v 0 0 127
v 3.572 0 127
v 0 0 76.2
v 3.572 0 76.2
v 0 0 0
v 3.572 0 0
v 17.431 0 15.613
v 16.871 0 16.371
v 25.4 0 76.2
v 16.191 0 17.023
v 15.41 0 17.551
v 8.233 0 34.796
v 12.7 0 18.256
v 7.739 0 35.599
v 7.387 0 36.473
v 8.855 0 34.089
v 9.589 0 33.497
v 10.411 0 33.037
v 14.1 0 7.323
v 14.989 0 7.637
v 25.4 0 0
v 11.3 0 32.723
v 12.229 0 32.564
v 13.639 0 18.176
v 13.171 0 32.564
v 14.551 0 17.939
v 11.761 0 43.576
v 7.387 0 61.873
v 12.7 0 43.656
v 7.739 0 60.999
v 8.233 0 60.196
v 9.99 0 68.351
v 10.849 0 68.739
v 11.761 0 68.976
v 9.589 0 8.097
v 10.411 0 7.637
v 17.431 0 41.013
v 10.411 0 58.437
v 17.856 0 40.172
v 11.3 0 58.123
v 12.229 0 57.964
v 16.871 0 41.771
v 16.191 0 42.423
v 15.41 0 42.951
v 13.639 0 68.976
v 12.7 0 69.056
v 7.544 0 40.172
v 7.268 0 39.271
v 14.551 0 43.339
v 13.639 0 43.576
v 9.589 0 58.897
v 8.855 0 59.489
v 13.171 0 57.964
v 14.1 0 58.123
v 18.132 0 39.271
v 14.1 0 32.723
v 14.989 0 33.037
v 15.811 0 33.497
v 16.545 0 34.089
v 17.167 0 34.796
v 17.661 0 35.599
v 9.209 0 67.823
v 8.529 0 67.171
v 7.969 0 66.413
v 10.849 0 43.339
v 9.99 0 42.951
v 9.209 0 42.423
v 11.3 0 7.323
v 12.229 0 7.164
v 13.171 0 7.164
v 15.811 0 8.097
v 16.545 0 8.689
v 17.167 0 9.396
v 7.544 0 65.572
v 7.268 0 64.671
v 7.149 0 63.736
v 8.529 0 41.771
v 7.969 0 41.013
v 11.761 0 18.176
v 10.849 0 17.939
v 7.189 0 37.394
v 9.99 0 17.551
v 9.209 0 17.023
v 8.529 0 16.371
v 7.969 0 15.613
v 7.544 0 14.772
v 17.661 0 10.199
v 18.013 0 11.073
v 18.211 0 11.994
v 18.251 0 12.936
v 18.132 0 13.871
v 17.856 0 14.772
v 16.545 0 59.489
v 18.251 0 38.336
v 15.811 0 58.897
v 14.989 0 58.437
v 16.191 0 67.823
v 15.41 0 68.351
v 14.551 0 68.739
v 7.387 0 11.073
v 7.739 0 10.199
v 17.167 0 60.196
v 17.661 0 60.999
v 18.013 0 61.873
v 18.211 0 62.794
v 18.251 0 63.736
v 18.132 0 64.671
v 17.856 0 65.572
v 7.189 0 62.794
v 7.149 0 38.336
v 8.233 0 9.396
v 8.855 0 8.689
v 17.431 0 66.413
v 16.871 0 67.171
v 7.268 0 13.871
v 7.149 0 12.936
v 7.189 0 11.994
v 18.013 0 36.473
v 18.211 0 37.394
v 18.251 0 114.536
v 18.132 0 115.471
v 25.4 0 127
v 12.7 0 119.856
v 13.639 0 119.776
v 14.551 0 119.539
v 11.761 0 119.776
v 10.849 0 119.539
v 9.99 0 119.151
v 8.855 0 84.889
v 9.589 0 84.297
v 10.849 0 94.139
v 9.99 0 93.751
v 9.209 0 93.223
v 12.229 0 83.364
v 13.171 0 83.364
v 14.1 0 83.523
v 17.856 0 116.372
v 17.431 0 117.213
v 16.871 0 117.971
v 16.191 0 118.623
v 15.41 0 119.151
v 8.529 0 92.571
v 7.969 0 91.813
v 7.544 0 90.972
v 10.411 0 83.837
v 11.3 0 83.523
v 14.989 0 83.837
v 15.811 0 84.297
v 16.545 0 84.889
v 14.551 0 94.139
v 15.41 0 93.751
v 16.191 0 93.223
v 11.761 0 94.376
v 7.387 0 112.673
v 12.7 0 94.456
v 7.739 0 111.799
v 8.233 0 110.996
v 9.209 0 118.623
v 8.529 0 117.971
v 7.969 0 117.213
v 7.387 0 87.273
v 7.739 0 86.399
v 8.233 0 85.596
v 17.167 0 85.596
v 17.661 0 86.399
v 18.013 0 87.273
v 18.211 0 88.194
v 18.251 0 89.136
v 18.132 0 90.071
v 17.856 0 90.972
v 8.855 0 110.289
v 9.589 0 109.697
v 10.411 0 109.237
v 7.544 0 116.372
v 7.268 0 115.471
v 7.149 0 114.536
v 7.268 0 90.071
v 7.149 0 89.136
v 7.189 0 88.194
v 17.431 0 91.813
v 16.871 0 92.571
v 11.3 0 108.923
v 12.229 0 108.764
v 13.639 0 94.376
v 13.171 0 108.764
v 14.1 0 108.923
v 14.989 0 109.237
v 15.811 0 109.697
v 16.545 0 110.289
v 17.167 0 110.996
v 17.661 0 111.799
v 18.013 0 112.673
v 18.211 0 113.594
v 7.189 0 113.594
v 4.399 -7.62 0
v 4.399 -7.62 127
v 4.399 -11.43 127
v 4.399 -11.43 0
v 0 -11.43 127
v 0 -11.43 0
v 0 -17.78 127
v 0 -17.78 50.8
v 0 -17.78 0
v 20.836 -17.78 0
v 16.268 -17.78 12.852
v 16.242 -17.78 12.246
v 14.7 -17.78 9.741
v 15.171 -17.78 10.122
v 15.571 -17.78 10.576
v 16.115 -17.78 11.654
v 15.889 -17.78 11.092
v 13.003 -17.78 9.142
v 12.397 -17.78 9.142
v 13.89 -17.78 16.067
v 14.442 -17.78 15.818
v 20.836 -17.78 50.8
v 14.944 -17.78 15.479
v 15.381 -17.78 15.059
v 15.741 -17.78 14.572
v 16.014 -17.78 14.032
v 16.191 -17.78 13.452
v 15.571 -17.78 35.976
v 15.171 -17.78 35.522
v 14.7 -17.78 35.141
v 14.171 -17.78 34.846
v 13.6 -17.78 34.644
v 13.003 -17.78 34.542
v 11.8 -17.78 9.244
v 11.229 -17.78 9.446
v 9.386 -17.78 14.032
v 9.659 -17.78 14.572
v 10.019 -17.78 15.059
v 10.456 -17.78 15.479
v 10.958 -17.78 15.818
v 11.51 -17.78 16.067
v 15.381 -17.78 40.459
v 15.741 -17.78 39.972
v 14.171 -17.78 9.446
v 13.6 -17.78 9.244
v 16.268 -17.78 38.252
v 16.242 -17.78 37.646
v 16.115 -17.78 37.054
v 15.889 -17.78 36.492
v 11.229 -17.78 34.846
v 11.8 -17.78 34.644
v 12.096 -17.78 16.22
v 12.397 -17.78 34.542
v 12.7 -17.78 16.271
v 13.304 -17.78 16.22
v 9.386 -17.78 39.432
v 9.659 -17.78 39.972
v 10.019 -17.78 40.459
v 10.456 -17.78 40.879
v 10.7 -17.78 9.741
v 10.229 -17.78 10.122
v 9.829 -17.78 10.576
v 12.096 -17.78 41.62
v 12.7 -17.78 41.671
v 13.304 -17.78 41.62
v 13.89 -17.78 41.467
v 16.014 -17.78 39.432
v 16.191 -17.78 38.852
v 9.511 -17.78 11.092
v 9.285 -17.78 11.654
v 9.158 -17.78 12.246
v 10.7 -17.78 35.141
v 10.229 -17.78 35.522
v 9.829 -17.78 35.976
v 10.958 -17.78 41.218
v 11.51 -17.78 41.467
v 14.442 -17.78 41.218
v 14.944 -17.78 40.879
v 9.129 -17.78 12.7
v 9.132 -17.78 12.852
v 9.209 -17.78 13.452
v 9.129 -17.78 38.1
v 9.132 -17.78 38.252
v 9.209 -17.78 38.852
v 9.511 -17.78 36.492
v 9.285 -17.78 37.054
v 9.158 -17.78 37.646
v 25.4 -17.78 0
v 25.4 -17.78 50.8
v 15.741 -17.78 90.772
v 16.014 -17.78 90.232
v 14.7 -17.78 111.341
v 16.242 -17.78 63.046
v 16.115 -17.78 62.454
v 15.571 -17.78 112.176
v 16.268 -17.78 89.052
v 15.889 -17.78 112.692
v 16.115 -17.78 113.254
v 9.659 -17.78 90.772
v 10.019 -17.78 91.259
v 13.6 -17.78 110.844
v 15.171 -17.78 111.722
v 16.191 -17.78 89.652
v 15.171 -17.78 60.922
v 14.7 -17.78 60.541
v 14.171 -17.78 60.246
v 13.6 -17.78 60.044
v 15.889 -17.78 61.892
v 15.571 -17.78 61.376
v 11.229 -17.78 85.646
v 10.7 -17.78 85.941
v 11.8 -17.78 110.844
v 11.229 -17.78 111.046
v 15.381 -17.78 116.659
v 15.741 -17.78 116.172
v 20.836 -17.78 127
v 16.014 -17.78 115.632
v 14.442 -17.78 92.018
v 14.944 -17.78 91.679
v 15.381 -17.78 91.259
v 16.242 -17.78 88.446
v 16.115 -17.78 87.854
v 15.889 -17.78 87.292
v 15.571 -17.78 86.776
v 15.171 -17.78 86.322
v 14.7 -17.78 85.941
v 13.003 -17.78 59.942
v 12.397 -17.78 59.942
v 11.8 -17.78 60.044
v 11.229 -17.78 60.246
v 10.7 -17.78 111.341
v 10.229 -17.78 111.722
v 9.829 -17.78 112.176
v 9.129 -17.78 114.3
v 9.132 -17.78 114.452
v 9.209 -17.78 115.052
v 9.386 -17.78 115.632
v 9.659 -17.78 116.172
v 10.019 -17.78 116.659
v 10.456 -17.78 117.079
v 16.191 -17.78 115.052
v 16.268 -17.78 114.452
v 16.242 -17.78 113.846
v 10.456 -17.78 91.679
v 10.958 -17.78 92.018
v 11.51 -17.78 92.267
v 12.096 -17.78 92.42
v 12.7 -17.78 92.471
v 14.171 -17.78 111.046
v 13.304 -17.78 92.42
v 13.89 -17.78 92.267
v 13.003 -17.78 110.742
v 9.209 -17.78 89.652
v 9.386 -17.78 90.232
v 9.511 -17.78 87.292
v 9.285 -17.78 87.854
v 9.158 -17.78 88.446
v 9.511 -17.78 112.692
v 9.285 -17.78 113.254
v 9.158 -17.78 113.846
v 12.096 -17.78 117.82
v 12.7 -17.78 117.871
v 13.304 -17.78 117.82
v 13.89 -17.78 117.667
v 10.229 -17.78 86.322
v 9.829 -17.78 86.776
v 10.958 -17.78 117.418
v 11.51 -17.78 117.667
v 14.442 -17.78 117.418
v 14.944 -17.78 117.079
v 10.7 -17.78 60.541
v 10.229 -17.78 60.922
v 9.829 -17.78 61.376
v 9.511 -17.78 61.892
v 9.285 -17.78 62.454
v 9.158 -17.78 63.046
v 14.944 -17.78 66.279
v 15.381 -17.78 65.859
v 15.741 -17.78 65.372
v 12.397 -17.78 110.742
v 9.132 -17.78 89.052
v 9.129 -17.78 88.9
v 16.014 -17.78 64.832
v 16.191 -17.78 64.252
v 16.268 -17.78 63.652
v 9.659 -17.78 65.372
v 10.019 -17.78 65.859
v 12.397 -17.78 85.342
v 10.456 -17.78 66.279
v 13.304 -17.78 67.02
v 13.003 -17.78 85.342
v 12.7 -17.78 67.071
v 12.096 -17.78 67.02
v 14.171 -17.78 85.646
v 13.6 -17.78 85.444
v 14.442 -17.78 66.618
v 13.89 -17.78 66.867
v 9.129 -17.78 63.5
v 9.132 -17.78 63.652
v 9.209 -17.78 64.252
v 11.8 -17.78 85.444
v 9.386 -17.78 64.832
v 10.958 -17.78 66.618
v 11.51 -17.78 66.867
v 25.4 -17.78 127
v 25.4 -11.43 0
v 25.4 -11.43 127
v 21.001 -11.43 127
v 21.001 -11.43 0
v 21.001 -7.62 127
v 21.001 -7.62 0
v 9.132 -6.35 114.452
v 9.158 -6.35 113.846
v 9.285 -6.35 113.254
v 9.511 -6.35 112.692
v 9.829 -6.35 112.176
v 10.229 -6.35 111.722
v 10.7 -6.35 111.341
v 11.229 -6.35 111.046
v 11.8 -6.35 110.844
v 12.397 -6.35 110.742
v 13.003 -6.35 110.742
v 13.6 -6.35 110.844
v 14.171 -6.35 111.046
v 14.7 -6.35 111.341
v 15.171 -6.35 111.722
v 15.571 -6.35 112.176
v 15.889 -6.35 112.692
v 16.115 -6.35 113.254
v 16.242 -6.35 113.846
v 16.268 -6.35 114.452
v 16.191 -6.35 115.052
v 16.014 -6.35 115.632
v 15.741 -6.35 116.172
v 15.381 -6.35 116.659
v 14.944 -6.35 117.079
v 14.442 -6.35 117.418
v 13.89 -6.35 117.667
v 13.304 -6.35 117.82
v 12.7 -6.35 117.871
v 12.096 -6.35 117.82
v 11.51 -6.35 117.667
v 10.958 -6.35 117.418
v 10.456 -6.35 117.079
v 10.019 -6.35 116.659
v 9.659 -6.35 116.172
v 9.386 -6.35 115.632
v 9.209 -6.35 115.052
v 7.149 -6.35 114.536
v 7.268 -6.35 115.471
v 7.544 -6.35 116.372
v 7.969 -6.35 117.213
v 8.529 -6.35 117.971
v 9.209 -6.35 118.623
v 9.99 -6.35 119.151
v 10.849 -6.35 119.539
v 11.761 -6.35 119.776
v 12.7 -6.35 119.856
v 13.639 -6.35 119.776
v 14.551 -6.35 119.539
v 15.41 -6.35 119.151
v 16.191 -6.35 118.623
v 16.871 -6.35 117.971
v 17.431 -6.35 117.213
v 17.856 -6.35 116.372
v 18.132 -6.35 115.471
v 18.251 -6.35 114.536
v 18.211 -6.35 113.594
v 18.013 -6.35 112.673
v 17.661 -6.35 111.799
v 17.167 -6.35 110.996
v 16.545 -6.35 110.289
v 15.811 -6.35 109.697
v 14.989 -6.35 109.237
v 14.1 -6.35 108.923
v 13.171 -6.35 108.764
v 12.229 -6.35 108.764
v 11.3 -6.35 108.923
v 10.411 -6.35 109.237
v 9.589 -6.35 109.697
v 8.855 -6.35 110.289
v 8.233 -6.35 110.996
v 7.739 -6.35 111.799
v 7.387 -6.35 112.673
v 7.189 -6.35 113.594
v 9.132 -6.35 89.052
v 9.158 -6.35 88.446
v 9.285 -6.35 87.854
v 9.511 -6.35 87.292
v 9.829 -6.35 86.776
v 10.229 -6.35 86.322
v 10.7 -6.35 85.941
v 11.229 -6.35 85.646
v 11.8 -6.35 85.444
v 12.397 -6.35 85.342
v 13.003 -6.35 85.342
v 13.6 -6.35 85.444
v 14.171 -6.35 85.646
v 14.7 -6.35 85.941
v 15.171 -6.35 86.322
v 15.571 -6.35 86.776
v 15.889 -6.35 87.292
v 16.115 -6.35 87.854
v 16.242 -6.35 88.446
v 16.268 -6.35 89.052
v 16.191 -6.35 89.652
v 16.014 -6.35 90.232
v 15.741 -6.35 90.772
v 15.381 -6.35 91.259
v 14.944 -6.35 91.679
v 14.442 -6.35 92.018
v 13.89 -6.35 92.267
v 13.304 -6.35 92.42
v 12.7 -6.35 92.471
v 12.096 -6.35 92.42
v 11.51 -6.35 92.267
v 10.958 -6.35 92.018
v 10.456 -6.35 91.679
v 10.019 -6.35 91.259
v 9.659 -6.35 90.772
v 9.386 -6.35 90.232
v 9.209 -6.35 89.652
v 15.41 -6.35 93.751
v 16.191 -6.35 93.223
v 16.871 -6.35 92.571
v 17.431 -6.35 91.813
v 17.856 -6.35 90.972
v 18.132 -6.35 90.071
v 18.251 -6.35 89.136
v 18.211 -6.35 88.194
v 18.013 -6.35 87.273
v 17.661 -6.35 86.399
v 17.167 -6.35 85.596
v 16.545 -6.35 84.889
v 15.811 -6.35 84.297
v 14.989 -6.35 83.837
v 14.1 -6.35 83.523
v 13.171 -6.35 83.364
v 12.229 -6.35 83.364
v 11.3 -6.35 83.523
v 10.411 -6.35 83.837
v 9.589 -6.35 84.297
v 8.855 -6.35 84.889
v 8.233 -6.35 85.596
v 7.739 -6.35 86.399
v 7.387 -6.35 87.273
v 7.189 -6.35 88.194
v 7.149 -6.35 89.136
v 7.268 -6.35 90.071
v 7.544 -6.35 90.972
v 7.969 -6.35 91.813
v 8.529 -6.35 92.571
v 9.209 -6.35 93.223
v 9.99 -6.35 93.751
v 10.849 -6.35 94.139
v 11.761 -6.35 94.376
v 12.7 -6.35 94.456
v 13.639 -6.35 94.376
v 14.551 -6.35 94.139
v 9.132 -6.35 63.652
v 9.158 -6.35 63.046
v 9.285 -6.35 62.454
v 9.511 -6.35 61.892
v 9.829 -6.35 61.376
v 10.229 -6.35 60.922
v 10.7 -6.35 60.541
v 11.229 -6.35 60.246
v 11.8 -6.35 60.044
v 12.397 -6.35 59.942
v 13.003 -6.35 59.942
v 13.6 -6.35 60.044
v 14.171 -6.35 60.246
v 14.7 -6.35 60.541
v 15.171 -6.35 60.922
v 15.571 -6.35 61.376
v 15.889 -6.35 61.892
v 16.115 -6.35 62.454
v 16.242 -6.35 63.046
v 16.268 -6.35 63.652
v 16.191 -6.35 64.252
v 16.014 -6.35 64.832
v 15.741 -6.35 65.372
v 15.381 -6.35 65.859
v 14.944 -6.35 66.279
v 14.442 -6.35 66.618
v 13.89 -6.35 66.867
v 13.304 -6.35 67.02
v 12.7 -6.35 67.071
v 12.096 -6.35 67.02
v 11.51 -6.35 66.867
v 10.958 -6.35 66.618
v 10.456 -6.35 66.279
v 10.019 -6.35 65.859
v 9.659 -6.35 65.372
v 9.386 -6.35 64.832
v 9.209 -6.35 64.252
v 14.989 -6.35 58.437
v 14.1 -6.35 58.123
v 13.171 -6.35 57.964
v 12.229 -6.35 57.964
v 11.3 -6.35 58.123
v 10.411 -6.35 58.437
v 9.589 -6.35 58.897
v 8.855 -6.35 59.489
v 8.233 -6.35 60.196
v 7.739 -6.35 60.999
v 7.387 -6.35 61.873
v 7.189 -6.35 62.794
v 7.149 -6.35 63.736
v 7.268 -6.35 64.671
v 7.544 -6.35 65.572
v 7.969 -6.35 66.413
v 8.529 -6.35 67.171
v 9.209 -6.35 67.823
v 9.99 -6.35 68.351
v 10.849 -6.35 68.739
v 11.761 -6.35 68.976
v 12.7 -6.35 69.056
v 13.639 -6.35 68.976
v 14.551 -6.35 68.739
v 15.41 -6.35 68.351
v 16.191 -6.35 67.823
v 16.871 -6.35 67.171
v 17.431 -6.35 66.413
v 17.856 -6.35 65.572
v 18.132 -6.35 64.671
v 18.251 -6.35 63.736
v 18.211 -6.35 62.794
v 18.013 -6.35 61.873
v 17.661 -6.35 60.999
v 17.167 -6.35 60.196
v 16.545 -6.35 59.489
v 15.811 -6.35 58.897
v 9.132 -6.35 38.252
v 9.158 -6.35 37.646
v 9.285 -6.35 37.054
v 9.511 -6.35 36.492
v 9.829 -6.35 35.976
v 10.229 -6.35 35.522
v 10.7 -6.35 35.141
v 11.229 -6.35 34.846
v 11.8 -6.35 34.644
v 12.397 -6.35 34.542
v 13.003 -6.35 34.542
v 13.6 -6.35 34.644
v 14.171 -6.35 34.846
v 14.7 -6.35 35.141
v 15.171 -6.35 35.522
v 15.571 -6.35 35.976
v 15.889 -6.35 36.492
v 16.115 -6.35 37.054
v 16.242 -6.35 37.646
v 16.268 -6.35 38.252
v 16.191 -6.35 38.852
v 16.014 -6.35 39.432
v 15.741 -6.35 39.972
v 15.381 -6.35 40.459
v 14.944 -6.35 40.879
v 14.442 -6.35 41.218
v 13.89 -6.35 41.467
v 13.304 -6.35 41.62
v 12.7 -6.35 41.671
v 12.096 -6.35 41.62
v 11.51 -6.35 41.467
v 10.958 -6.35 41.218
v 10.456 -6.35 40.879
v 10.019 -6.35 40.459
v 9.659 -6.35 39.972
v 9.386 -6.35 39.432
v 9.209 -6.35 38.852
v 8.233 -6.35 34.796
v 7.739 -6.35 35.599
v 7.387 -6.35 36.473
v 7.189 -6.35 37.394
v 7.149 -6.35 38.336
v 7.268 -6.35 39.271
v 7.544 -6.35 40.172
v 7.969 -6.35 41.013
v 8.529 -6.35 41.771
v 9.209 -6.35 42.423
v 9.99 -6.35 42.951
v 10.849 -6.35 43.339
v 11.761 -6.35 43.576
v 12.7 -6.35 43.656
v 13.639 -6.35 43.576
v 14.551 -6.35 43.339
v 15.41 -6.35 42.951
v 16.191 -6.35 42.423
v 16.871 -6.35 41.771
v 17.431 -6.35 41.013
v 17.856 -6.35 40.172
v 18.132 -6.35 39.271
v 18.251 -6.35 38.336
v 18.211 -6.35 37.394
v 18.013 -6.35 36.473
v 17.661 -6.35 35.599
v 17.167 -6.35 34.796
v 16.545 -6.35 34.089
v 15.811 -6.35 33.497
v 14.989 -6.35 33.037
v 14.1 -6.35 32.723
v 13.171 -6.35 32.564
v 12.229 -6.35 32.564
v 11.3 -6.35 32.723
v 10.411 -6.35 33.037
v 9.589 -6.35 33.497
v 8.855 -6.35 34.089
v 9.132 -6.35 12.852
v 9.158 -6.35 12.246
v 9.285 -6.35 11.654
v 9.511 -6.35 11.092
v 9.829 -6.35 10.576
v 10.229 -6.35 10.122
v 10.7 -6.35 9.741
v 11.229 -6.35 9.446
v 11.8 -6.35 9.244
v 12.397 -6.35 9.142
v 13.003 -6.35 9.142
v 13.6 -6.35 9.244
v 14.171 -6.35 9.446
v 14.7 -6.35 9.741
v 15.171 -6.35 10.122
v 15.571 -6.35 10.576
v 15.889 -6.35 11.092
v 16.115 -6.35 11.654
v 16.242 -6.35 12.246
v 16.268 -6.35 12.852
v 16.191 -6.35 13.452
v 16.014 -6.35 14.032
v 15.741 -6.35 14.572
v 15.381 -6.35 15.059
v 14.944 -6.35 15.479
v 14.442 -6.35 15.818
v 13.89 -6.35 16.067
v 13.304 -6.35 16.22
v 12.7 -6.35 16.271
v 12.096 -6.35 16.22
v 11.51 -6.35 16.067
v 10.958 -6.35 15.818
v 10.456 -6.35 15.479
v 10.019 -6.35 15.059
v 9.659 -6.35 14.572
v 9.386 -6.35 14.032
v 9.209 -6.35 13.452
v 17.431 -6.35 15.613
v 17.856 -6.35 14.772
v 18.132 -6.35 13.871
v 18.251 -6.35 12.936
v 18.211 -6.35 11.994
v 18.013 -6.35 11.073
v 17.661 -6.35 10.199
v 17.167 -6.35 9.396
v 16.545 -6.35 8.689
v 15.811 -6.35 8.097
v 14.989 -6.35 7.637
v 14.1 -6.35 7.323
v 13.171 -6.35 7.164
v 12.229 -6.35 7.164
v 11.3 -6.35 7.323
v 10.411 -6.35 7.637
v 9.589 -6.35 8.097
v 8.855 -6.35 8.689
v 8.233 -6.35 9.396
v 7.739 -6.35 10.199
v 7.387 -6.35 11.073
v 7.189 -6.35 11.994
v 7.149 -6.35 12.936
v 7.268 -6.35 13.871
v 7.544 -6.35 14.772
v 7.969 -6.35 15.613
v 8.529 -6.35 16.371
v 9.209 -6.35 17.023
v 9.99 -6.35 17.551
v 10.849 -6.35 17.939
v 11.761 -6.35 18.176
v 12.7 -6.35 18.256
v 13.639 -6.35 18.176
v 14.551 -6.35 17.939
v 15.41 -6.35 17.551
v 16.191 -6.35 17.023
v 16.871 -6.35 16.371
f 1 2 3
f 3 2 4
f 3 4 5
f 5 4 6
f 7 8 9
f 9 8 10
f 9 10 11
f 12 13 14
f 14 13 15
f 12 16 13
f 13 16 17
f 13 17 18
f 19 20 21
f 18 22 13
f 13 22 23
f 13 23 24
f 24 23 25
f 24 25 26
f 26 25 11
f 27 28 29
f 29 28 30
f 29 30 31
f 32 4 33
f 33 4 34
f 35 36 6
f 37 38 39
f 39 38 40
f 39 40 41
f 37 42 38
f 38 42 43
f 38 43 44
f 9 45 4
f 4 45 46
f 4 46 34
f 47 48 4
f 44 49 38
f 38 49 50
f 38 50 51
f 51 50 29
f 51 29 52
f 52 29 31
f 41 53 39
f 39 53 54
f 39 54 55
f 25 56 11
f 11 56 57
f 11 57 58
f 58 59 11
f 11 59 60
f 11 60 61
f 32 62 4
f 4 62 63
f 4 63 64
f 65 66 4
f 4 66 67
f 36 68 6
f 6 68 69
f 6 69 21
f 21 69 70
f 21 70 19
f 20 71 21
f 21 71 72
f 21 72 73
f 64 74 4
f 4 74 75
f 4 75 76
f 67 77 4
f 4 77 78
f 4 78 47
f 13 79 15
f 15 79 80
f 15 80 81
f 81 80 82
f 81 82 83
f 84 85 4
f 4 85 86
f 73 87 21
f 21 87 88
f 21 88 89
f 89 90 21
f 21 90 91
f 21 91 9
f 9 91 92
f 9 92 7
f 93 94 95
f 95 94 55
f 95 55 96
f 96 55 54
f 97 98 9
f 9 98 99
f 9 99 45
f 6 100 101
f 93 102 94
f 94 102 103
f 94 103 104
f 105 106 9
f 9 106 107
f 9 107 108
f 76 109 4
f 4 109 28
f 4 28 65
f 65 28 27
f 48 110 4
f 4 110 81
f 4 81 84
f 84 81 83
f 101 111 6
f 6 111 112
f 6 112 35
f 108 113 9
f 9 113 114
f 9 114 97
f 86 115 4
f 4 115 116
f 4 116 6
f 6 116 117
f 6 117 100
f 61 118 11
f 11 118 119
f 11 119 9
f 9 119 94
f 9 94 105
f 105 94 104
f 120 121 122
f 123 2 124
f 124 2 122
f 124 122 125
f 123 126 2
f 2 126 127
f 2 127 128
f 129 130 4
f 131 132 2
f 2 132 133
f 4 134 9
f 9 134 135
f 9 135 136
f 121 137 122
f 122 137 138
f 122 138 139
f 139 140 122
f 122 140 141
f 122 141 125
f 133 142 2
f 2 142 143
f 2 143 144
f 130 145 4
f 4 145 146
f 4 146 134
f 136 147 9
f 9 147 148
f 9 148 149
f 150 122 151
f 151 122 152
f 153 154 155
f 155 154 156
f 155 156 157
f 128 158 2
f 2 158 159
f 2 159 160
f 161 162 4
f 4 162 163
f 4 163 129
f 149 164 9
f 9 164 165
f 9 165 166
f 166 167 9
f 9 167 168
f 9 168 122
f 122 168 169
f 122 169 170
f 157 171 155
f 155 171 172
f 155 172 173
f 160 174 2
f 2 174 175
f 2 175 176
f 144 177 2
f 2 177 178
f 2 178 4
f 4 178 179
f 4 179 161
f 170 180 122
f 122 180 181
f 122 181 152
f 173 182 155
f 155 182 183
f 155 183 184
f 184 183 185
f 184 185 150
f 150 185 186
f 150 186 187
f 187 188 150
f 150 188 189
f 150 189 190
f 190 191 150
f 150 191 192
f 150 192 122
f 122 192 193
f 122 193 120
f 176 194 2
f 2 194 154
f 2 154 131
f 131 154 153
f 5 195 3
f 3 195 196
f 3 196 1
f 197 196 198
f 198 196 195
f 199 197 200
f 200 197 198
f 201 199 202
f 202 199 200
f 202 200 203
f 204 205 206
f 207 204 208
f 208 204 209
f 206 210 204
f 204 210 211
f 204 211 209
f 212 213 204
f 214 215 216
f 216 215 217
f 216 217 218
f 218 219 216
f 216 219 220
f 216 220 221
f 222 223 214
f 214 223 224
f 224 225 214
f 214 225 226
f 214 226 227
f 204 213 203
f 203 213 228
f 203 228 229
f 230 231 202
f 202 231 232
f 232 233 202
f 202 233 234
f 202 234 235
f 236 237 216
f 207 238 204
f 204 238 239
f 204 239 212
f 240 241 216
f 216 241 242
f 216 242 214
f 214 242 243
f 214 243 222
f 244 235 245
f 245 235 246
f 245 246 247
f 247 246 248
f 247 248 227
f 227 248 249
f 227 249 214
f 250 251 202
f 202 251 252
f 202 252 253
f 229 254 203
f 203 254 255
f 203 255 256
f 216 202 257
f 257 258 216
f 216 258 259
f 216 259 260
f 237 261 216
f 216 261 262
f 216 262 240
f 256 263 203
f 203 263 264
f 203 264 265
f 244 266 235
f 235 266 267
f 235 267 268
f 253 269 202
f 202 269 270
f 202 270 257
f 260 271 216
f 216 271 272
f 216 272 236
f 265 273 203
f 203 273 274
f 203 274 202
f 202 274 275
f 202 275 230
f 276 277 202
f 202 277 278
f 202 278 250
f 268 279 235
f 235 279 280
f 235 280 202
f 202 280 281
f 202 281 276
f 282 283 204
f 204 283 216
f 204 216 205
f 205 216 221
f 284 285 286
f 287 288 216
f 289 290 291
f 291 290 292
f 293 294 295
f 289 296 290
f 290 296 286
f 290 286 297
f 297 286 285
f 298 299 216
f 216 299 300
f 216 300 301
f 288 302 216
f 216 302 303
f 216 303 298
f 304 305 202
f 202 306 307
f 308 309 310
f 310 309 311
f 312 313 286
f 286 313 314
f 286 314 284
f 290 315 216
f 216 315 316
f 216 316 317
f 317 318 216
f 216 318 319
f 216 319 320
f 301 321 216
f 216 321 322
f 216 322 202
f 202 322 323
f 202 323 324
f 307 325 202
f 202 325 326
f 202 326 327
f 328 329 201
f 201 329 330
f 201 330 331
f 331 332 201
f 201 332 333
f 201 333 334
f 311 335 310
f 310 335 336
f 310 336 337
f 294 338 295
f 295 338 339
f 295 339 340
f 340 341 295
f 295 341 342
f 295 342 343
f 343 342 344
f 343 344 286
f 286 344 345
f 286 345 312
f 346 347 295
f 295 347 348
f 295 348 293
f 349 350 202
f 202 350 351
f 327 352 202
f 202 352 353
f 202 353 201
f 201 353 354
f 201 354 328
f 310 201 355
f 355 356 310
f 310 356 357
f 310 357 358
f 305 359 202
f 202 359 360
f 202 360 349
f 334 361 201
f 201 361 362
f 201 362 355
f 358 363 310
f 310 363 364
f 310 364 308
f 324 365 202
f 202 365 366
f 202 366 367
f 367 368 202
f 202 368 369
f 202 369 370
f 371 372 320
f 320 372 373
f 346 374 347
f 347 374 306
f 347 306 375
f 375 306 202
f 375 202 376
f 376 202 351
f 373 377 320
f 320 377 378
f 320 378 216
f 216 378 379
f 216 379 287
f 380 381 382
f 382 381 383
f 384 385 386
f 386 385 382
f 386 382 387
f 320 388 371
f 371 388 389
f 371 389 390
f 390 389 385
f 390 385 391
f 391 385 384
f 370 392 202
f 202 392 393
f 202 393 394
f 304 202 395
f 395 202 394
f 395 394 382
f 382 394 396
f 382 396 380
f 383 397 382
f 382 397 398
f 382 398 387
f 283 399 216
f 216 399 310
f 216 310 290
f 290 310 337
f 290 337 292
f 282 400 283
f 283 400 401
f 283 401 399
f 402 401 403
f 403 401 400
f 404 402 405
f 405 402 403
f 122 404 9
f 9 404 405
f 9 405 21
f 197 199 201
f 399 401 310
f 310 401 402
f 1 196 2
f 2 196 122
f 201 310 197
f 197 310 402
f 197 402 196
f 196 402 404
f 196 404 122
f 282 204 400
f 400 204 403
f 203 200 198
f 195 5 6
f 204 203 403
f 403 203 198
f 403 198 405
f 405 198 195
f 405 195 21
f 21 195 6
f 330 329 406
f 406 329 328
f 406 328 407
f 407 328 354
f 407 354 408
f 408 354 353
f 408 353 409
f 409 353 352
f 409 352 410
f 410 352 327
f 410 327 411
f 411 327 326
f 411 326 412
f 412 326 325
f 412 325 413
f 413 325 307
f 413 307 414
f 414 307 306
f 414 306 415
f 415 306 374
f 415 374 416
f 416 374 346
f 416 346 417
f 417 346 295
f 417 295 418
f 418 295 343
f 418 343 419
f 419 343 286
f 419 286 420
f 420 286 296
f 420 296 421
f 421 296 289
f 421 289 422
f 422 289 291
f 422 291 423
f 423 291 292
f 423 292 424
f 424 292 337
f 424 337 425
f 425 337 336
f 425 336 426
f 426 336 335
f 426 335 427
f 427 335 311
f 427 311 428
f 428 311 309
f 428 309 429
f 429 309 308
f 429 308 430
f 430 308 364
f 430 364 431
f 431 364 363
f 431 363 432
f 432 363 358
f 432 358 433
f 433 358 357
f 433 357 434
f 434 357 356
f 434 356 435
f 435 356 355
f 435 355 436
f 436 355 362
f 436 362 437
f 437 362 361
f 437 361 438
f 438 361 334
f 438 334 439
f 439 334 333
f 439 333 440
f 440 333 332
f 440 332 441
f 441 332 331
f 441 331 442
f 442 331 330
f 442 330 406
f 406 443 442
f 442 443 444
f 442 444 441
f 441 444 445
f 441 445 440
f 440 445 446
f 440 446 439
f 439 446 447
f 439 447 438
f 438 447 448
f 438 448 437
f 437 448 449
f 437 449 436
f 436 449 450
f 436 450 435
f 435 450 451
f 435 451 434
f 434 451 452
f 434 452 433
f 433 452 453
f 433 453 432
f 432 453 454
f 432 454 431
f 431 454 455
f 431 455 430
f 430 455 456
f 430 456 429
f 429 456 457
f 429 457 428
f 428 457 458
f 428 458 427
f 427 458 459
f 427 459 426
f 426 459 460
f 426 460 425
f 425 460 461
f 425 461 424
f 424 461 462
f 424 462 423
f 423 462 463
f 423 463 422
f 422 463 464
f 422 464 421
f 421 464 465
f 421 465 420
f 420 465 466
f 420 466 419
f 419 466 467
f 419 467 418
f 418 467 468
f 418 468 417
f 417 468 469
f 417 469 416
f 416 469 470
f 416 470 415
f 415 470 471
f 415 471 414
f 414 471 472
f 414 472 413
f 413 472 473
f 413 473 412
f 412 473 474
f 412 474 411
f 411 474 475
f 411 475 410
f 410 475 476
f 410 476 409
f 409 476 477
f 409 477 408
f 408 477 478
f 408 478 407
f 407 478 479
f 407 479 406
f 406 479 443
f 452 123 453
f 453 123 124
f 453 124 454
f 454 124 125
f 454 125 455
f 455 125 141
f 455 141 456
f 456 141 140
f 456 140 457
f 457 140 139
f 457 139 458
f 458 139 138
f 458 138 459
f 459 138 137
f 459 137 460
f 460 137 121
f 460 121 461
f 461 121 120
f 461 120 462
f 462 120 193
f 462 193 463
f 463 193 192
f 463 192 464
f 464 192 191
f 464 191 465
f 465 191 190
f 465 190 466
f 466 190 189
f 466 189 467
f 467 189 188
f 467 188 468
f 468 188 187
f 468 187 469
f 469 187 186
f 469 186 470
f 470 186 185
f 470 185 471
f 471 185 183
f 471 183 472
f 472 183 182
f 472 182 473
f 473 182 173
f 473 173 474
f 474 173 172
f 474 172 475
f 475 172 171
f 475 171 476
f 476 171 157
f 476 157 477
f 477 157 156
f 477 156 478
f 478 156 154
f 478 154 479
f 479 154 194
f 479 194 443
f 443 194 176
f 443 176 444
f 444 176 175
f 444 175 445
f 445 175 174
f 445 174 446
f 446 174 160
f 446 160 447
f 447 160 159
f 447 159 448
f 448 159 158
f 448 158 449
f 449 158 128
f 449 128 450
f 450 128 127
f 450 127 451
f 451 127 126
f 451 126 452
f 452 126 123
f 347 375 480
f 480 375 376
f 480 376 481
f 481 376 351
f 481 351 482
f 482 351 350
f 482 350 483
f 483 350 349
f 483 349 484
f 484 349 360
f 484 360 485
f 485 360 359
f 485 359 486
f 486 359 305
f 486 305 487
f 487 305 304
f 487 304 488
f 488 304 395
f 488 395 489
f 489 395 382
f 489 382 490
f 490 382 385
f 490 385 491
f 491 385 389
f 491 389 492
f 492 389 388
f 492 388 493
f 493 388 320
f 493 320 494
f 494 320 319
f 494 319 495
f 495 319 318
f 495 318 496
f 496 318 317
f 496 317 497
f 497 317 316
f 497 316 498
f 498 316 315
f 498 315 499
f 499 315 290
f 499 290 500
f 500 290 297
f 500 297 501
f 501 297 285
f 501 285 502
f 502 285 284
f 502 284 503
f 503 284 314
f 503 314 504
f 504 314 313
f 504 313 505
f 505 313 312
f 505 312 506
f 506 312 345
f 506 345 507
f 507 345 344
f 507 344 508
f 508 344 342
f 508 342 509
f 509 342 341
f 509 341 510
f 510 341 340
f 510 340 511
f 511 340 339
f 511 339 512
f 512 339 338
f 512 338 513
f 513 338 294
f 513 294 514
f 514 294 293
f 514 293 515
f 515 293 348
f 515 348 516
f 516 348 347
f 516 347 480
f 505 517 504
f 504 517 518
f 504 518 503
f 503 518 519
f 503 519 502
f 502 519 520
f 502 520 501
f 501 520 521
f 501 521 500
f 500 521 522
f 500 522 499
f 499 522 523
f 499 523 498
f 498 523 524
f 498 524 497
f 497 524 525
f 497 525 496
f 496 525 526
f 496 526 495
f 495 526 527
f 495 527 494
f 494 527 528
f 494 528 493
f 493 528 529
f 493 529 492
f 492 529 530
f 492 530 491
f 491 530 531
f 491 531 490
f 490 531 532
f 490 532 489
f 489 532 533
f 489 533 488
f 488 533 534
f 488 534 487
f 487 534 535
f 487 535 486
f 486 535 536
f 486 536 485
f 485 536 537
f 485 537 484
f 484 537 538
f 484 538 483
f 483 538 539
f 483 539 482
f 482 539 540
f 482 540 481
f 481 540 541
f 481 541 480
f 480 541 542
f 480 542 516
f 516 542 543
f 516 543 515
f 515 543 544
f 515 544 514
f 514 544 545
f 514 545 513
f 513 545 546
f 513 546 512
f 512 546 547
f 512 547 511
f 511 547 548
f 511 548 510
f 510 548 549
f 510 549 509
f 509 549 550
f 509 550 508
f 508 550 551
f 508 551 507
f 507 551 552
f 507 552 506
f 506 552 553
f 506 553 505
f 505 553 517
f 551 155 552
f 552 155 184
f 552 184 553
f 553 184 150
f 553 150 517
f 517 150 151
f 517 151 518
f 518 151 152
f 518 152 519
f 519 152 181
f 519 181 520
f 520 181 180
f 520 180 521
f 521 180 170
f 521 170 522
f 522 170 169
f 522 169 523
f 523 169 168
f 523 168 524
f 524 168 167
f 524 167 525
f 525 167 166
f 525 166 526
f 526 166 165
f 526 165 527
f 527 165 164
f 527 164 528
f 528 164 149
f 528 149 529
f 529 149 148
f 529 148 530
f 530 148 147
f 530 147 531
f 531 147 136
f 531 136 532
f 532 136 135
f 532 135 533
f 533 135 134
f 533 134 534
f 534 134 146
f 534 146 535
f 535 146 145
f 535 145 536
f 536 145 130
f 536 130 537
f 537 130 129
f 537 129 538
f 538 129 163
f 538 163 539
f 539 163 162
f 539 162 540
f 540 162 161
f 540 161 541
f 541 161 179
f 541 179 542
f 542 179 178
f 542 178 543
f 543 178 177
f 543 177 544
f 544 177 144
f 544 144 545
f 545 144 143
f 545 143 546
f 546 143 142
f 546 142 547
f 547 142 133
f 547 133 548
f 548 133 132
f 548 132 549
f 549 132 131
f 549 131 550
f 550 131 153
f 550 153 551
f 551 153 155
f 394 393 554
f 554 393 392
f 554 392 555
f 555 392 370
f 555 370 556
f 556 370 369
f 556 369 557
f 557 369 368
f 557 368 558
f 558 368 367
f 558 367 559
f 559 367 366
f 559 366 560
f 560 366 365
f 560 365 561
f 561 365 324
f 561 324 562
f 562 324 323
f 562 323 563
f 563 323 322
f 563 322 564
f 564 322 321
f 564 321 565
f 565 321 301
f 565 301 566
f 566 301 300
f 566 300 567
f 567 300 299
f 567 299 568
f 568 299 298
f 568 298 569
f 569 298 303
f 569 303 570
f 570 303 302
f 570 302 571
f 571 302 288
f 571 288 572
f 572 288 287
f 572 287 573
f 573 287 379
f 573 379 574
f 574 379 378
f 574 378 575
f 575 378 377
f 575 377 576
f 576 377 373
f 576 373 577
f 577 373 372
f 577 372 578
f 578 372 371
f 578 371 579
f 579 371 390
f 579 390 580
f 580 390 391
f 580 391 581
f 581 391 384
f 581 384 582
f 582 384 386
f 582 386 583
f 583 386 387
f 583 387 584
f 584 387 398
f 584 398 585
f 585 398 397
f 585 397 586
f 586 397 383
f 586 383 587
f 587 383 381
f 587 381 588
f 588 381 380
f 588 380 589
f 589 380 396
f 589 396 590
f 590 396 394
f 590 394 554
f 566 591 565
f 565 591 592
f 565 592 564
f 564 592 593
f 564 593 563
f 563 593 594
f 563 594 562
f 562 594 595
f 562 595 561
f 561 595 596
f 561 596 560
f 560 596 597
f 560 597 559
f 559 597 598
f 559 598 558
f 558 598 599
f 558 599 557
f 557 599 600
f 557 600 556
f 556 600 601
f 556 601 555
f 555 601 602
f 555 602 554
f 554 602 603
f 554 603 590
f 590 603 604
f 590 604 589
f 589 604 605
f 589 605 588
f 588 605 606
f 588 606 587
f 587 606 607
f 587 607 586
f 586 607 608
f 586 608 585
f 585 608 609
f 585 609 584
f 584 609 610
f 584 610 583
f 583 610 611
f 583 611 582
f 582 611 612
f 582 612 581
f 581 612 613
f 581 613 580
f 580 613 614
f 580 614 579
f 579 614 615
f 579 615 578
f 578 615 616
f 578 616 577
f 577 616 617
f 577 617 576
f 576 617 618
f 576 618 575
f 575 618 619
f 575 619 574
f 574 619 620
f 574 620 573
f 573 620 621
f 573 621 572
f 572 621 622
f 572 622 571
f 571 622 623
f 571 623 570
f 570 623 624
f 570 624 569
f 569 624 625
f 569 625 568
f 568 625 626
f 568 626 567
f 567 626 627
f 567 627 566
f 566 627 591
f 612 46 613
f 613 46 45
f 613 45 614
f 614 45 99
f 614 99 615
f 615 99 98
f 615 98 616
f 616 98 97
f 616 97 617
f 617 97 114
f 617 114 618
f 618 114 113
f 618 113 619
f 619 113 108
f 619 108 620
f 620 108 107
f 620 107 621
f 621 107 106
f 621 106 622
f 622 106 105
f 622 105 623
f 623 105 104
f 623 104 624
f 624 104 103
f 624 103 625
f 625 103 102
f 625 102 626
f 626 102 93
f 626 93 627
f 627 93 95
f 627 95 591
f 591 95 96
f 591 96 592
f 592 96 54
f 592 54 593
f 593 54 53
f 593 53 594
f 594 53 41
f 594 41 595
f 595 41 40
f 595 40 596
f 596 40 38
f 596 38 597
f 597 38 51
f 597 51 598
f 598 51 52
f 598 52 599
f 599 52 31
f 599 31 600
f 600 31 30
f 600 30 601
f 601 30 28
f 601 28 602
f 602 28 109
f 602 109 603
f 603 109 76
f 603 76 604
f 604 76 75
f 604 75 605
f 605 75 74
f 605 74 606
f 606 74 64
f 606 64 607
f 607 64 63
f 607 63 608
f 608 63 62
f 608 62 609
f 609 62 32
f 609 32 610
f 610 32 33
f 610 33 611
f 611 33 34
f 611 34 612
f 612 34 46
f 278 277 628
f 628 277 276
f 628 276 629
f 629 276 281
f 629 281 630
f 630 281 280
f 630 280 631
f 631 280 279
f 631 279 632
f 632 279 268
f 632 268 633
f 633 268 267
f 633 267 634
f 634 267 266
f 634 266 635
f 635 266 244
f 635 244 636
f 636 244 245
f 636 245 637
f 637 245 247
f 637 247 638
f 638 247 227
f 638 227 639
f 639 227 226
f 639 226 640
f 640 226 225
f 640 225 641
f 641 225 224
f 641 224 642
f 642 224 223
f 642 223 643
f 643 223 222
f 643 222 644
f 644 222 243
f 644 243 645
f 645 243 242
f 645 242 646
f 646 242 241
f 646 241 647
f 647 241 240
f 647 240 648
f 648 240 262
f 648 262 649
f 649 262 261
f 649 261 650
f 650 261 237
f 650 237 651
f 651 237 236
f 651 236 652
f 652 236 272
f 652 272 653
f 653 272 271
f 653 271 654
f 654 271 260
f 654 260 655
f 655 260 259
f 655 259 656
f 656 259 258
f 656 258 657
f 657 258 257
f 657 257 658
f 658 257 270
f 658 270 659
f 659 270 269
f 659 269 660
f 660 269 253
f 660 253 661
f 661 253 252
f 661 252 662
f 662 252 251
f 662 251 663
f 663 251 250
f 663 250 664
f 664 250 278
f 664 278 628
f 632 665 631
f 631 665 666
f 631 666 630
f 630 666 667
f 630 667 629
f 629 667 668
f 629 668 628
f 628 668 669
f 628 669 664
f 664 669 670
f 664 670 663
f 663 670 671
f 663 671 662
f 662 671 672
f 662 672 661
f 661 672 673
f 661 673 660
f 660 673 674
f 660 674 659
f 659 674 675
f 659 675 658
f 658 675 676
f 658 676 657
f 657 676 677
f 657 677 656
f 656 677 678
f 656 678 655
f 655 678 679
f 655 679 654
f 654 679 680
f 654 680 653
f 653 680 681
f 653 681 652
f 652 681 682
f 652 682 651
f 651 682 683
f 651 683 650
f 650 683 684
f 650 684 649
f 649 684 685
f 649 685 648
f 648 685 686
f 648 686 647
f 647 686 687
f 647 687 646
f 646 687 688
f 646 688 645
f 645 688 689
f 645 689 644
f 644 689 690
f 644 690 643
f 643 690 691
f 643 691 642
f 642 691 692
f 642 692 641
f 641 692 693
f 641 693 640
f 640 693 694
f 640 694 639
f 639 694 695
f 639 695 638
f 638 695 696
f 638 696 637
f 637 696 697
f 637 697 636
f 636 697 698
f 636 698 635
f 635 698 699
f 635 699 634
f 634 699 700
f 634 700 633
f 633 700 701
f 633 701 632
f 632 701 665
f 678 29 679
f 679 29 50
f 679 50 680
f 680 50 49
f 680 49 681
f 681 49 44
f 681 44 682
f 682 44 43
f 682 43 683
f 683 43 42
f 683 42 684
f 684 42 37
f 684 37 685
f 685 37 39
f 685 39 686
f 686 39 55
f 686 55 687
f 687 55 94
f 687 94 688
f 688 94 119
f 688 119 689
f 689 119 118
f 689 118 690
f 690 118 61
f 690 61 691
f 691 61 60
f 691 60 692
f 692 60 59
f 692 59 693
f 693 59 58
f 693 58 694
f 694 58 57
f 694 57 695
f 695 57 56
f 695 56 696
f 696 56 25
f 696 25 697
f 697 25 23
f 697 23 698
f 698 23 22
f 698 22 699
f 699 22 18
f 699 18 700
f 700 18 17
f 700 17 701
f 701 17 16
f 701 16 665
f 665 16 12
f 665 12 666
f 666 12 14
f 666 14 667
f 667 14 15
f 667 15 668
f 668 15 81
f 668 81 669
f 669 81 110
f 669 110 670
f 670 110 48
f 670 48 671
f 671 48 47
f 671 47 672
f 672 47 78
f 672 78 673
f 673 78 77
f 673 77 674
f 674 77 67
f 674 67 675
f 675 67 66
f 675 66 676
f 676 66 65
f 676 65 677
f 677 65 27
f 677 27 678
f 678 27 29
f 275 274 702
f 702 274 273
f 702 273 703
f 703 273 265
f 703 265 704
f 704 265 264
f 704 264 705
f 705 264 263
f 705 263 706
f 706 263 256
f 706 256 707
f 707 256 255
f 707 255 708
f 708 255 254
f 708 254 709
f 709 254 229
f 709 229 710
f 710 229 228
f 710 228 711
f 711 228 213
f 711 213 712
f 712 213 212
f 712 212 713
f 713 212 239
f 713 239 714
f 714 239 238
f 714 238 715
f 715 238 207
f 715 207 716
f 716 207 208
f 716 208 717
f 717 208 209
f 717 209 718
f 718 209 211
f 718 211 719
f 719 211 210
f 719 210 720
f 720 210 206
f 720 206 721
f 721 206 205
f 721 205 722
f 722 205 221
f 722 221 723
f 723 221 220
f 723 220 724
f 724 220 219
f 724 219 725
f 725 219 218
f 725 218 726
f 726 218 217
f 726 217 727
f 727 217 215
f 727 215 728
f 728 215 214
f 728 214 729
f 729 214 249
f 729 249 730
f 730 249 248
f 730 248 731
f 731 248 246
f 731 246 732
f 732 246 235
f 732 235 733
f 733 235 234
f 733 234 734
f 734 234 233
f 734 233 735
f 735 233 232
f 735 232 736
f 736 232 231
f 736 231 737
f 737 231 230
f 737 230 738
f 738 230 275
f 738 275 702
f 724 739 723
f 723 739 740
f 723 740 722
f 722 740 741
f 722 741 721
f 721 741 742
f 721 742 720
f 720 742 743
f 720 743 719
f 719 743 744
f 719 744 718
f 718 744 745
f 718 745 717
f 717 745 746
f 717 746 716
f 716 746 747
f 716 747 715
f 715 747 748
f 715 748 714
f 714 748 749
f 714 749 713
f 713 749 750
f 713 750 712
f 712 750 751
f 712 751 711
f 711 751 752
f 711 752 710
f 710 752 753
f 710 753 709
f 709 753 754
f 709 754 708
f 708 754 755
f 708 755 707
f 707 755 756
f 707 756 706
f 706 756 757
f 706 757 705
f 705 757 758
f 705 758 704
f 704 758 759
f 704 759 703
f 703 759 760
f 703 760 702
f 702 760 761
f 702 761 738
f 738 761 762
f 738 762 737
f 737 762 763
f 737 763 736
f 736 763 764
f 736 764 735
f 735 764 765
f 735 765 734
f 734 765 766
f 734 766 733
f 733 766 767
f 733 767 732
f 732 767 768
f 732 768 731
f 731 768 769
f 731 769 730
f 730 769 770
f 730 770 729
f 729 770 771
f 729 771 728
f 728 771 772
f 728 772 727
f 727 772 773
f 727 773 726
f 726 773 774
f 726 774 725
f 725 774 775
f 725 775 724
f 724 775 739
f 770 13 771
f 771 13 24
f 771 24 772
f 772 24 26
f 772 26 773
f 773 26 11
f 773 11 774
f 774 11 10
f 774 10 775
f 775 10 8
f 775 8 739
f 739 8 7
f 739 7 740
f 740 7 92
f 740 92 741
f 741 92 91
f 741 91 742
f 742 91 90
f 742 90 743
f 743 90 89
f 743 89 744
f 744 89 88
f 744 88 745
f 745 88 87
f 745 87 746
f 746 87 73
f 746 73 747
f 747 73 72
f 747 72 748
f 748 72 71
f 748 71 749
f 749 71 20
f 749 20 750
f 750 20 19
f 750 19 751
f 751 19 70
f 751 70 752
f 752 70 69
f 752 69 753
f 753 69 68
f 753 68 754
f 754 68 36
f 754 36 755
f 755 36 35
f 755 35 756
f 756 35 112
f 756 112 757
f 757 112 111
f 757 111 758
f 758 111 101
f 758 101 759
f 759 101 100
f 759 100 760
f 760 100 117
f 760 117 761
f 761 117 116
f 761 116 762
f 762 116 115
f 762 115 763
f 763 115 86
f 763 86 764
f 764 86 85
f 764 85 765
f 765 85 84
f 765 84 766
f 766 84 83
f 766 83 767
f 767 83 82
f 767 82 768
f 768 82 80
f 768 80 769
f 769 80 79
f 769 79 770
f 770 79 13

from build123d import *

# Parameters (mm, degrees)
BOSS_EXTRUDE1_DEPTH                              = 127
CBORE_FOR_1_4_SOCKET_HEAD_CAP_SCREW1_D           = 7.14248
CBORE_FOR_1_4_SOCKET_HEAD_CAP_SCREW1_CBORE_D     = 11.1125
CBORE_FOR_1_4_SOCKET_HEAD_CAP_SCREW1_CBORE_DEPTH = 6.35


with BuildPart() as part:
    # Sketch1 → Boss-Extrude1 (new body)
    with BuildSketch(Plane.XY):
        Polygon((0, 0), (25.4, 0), (21.000590949, -7.62), (21.000590949, -11.43), (25.4, -11.43), (25.4, -17.78), (0, -17.78), (0, -11.43), (4.399409051, -11.43), (4.399409051, -7.62), align=None)
    extrude(amount=BOSS_EXTRUDE1_DEPTH)

    # CBORE for 1/4 Socket Head Cap Screw1 (through all)
    with Locations(Plane(origin=(0, 0, 0), x_dir=(1, 0, 0), z_dir=(0, 1, 0))):
        with Locations((12.7, -12.7), (12.7, -38.1), (12.7, -63.5), (12.7, -88.9), (12.7, -114.3)):
            CounterBoreHole(CBORE_FOR_1_4_SOCKET_HEAD_CAP_SCREW1_D / 2, CBORE_FOR_1_4_SOCKET_HEAD_CAP_SCREW1_CBORE_D / 2, CBORE_FOR_1_4_SOCKET_HEAD_CAP_SCREW1_CBORE_DEPTH)


solid = part.part
